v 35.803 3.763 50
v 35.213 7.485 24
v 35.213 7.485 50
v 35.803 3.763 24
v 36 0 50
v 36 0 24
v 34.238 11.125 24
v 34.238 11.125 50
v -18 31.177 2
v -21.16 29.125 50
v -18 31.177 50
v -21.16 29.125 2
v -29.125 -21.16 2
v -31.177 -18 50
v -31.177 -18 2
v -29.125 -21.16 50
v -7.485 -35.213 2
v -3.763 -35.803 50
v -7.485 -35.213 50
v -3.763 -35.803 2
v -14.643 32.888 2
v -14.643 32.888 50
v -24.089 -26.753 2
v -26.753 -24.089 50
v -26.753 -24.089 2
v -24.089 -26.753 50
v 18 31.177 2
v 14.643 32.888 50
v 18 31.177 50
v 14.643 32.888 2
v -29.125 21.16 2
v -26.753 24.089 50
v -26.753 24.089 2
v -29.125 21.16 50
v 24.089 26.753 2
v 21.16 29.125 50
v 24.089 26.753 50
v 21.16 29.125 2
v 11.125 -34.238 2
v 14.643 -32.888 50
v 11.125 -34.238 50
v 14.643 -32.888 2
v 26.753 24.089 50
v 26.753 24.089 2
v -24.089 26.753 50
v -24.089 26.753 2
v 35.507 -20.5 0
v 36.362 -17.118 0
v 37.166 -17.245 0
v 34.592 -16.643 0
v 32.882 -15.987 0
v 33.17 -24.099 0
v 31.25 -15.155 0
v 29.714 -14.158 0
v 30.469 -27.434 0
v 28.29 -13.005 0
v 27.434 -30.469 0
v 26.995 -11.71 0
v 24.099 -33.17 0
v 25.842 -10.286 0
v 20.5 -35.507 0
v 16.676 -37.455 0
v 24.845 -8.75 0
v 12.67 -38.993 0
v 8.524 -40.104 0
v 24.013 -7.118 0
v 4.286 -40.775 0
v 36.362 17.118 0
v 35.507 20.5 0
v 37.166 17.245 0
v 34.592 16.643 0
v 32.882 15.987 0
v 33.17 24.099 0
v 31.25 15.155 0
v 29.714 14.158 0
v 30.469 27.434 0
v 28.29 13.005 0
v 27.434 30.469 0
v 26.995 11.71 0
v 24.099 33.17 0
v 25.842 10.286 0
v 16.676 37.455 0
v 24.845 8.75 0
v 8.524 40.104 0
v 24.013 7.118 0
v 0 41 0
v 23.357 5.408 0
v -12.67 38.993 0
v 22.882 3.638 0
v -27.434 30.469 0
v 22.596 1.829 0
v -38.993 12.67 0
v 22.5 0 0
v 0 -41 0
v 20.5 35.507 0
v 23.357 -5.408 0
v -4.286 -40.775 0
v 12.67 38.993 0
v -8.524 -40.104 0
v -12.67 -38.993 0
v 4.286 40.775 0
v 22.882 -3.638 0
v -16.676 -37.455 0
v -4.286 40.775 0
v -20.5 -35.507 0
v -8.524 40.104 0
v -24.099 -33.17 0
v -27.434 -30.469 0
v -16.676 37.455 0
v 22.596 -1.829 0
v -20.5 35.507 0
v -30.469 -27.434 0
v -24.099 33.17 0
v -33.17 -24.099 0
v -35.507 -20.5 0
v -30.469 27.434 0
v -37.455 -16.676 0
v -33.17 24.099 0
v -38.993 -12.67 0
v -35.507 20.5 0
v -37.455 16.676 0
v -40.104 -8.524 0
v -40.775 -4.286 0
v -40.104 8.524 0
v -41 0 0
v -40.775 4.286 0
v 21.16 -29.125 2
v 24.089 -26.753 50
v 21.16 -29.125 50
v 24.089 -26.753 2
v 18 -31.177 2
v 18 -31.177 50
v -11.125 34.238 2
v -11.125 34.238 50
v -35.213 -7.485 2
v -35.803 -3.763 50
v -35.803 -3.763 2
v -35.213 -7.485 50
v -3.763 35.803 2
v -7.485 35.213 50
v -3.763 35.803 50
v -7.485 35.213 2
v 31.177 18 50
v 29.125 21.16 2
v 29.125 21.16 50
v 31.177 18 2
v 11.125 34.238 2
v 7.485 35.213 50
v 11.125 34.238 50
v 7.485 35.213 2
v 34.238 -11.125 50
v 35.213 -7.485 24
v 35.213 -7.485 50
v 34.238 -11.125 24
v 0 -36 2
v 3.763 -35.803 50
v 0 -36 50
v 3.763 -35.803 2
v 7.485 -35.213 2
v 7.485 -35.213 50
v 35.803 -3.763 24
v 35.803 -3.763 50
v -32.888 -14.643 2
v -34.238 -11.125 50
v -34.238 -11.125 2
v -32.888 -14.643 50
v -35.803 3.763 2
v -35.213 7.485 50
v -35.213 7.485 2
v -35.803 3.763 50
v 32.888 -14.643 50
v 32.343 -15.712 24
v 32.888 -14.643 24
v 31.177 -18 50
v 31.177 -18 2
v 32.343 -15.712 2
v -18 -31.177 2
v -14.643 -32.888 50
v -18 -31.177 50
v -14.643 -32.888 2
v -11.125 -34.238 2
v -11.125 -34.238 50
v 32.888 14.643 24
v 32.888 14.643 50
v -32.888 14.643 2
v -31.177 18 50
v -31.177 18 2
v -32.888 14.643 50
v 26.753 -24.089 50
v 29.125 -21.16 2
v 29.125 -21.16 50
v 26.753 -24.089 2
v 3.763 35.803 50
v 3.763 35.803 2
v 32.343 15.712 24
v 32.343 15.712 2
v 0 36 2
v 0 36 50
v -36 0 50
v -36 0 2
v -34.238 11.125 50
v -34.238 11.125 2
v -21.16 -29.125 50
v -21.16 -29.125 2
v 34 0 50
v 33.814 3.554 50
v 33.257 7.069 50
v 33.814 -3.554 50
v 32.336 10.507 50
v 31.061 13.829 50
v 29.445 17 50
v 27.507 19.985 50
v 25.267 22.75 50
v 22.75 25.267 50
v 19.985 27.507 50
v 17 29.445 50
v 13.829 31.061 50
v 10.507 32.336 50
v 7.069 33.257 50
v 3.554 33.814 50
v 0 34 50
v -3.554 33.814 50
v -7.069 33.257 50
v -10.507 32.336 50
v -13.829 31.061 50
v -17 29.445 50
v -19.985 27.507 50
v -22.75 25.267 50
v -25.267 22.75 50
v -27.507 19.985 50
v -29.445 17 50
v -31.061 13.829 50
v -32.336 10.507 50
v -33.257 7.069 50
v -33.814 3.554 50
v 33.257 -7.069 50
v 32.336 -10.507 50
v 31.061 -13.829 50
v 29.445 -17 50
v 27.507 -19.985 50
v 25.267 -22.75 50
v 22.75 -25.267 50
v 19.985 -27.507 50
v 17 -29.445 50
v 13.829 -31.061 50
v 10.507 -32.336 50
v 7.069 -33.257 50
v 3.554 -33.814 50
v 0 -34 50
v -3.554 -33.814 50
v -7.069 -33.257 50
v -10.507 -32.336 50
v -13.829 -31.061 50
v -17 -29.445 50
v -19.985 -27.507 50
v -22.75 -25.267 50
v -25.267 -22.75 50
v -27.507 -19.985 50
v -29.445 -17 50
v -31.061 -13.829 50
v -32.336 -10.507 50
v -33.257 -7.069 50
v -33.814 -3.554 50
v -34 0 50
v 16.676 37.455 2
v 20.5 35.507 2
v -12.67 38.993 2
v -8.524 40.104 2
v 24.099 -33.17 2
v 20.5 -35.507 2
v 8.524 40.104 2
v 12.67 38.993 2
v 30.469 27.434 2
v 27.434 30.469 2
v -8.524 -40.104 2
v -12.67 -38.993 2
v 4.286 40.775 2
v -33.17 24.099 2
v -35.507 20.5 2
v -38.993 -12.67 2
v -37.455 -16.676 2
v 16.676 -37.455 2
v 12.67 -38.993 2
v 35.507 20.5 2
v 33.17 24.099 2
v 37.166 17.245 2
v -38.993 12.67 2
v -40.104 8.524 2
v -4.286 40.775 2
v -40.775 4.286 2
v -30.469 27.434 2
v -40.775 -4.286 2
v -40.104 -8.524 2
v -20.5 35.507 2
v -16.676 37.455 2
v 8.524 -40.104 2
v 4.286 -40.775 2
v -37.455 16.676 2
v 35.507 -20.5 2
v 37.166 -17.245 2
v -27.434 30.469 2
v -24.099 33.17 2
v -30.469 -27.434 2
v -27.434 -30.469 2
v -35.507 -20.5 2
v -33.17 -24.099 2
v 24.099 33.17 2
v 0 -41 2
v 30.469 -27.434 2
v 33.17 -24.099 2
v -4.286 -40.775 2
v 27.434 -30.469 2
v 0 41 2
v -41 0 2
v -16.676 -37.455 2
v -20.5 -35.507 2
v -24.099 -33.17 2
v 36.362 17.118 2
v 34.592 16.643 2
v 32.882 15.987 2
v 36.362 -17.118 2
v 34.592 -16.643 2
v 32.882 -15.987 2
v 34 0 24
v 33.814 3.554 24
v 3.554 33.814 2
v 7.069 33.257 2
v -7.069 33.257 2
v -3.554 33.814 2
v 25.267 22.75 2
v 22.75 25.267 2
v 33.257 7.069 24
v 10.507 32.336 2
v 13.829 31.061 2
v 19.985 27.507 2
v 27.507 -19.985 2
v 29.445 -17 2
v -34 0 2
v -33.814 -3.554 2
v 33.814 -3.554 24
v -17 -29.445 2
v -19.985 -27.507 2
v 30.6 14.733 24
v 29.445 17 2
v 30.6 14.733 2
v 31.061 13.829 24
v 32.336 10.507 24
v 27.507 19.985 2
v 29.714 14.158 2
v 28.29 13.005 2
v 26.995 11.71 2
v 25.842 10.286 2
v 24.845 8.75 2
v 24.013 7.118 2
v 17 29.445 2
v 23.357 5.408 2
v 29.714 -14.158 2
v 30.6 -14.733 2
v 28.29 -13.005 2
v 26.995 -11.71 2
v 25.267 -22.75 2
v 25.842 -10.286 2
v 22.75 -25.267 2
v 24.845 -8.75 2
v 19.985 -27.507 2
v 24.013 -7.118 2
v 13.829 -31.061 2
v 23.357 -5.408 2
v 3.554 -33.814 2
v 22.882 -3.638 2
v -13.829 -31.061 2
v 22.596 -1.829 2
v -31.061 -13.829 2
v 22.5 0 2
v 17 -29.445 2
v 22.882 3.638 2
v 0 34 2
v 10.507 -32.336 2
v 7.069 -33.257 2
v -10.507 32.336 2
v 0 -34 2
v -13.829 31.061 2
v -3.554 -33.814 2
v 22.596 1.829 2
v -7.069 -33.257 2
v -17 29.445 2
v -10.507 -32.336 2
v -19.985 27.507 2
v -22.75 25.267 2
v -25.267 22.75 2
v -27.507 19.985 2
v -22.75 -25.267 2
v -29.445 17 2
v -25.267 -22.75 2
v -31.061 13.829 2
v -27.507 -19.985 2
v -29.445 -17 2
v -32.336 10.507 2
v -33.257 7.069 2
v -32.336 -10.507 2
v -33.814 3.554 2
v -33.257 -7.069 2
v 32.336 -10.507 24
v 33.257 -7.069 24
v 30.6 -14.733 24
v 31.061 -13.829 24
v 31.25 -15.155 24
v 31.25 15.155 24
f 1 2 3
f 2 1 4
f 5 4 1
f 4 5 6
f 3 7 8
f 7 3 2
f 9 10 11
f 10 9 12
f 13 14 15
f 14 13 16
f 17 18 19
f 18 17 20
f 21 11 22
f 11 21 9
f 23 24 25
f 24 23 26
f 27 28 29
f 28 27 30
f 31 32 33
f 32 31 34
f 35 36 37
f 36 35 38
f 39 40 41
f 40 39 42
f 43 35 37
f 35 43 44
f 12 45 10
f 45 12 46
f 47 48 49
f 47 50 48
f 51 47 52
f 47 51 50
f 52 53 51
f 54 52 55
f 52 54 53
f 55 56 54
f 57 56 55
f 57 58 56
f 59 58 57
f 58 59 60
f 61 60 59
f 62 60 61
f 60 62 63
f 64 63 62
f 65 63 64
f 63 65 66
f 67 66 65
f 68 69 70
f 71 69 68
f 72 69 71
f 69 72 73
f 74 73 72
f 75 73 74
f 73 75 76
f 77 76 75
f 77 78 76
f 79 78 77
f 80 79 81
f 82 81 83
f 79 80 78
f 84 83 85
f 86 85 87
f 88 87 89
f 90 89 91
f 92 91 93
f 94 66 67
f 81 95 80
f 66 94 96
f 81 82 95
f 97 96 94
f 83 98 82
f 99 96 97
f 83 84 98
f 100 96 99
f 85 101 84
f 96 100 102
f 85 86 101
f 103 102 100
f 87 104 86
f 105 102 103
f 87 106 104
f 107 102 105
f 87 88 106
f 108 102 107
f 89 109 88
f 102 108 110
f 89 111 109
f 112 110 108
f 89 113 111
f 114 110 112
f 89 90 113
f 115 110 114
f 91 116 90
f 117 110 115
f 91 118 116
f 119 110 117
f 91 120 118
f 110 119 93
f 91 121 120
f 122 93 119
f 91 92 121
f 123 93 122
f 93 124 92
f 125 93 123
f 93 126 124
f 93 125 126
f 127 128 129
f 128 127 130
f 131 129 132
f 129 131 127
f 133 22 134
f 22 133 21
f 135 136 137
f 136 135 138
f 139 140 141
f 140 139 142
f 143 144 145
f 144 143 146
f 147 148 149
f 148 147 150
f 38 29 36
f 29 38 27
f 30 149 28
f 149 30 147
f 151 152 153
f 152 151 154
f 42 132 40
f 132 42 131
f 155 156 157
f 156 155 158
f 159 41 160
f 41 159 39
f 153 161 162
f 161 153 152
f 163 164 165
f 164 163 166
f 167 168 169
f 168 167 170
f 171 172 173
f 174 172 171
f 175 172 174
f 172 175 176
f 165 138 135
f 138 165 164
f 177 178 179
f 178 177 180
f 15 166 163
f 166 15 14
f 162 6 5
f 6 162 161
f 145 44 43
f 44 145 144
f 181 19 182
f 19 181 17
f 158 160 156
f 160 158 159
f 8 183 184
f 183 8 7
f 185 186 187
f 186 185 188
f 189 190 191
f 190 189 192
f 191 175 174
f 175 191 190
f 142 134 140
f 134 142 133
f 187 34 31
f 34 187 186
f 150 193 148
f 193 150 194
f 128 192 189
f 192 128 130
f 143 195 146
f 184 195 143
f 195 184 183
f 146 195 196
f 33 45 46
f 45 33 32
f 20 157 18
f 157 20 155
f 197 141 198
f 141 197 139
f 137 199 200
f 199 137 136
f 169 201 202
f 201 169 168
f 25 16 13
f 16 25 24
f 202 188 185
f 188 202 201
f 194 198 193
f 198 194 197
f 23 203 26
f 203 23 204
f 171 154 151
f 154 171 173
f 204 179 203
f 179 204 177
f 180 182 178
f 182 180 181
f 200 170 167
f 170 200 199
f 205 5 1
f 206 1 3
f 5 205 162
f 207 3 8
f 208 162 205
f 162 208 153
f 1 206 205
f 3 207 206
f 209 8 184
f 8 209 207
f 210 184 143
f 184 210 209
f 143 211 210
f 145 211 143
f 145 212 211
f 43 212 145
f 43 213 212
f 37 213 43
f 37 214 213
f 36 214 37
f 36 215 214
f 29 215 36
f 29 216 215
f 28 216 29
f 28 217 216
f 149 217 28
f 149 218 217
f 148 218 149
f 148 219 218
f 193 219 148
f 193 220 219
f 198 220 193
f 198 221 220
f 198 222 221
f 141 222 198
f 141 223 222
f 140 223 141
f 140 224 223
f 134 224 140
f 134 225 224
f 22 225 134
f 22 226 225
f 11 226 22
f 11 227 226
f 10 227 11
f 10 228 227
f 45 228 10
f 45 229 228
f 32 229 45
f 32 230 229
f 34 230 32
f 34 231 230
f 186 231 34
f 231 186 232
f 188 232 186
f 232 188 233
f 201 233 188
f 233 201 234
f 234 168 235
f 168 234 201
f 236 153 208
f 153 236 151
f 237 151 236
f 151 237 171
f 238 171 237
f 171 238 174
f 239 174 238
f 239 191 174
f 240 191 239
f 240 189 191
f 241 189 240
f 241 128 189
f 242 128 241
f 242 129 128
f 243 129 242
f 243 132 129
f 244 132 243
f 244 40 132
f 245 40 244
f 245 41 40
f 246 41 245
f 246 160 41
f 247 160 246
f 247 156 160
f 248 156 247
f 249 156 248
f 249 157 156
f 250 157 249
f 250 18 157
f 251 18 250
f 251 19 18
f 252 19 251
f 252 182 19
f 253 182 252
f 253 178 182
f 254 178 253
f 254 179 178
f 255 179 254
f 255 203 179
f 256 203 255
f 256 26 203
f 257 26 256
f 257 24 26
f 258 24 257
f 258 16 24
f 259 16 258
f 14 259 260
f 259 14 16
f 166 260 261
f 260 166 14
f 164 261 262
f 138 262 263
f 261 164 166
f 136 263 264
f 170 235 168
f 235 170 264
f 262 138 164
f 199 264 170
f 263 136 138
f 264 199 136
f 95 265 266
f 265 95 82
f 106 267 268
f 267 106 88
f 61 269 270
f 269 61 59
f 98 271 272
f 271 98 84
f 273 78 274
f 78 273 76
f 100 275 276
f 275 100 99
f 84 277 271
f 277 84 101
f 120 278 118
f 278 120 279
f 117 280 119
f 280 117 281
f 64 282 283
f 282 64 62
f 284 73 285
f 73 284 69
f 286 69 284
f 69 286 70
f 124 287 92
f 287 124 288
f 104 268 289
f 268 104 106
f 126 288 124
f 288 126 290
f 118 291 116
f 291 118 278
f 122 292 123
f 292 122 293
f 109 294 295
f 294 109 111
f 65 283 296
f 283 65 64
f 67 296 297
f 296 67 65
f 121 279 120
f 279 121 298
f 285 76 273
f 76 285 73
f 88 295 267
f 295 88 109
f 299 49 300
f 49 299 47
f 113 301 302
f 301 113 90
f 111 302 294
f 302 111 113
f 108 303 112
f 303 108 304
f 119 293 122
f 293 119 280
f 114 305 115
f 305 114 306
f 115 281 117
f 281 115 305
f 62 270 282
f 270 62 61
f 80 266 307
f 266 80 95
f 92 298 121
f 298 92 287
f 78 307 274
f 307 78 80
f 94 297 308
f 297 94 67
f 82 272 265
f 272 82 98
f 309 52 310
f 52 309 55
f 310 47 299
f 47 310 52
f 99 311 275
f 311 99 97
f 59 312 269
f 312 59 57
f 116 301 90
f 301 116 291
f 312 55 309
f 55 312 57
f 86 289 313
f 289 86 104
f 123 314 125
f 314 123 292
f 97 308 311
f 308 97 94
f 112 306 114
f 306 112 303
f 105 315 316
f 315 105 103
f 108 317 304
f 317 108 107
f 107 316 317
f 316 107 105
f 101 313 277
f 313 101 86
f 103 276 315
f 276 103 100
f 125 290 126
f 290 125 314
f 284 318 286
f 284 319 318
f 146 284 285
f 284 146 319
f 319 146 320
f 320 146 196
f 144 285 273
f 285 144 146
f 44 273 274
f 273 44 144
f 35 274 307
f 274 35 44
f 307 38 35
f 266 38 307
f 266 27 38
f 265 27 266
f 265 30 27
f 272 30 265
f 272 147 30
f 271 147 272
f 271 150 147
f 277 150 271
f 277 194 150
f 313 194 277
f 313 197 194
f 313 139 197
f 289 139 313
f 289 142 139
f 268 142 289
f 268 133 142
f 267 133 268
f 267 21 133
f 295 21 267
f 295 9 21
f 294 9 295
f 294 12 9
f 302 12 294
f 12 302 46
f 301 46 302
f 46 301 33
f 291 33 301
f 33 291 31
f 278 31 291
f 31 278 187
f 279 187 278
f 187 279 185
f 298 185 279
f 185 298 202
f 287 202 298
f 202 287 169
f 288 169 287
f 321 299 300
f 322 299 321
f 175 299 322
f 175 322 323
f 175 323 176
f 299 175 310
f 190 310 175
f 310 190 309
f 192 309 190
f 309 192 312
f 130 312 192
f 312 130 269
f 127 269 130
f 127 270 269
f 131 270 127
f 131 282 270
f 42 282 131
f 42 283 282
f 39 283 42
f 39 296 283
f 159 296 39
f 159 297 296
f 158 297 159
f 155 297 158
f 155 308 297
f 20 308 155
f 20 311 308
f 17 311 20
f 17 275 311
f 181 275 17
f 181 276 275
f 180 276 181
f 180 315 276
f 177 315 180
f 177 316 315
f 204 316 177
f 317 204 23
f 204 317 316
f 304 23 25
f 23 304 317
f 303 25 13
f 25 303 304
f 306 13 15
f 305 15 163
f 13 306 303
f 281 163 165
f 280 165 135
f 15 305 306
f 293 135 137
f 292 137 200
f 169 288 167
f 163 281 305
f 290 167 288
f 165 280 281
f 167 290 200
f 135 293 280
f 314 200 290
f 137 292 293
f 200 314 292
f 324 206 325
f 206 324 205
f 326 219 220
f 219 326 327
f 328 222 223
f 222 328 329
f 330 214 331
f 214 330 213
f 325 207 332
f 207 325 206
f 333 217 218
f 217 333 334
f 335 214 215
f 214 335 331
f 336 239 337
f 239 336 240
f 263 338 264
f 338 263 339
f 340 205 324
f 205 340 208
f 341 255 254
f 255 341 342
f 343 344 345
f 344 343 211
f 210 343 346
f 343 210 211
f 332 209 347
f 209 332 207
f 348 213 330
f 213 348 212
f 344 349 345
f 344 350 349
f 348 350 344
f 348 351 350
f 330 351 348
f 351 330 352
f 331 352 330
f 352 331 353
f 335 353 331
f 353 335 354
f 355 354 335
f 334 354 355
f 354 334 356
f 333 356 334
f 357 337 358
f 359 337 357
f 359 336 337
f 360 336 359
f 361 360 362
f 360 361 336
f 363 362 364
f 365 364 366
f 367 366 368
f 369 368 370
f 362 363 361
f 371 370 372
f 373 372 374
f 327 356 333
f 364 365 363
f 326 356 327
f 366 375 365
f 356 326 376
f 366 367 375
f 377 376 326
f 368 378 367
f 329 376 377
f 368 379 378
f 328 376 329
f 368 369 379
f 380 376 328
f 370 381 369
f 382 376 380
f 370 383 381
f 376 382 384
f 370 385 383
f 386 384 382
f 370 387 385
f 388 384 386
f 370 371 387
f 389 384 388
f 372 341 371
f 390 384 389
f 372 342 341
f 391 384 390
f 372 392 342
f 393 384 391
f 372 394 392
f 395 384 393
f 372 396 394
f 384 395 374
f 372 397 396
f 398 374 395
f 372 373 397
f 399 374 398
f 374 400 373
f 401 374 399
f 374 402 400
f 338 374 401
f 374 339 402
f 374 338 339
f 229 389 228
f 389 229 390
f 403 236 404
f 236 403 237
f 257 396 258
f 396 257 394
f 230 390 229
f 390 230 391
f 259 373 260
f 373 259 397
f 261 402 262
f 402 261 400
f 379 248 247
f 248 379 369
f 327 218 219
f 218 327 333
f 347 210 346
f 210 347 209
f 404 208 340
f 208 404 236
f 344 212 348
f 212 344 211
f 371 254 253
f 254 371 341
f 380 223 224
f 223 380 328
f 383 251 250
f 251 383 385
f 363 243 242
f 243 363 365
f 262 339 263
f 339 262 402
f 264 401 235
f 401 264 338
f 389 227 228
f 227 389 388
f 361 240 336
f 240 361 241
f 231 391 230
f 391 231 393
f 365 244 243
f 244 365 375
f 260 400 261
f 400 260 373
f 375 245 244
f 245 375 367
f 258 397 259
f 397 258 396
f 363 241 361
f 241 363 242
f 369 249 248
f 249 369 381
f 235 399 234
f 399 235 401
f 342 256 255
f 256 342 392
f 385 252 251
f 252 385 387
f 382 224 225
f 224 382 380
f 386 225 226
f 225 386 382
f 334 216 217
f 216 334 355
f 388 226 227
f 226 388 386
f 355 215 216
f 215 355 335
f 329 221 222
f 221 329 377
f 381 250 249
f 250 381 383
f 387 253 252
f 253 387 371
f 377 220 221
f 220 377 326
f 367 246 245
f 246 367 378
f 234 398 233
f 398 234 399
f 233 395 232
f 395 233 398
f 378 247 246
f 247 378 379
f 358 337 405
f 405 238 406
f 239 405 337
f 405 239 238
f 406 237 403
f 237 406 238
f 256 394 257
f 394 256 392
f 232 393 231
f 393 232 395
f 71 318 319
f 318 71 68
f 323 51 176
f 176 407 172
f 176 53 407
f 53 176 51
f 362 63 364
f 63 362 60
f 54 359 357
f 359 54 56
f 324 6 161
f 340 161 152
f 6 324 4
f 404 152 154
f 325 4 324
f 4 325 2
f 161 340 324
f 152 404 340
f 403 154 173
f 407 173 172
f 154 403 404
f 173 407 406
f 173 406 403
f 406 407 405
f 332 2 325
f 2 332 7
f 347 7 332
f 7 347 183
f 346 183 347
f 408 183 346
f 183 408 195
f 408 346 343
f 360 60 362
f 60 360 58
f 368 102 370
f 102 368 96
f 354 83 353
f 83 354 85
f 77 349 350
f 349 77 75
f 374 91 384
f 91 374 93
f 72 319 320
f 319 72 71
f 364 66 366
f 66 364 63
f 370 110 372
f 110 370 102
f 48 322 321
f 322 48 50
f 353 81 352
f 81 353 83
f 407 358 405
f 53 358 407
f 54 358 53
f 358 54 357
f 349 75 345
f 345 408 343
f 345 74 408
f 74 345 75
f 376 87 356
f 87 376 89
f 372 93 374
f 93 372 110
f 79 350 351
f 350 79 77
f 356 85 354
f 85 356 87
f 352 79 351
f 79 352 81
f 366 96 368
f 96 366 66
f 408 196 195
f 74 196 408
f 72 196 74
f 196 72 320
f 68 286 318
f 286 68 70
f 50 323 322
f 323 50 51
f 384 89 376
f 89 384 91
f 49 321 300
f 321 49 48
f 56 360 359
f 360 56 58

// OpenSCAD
$fn=60;

difference() {
	union() {
		cylinder(h=50, d=72);
		cylinder(h=2, d=82);
	}
	translate([0,0,2]) cylinder(h=50, d=68);
	translate([40,0,-1]) cylinder(h=25, d=35);
}
